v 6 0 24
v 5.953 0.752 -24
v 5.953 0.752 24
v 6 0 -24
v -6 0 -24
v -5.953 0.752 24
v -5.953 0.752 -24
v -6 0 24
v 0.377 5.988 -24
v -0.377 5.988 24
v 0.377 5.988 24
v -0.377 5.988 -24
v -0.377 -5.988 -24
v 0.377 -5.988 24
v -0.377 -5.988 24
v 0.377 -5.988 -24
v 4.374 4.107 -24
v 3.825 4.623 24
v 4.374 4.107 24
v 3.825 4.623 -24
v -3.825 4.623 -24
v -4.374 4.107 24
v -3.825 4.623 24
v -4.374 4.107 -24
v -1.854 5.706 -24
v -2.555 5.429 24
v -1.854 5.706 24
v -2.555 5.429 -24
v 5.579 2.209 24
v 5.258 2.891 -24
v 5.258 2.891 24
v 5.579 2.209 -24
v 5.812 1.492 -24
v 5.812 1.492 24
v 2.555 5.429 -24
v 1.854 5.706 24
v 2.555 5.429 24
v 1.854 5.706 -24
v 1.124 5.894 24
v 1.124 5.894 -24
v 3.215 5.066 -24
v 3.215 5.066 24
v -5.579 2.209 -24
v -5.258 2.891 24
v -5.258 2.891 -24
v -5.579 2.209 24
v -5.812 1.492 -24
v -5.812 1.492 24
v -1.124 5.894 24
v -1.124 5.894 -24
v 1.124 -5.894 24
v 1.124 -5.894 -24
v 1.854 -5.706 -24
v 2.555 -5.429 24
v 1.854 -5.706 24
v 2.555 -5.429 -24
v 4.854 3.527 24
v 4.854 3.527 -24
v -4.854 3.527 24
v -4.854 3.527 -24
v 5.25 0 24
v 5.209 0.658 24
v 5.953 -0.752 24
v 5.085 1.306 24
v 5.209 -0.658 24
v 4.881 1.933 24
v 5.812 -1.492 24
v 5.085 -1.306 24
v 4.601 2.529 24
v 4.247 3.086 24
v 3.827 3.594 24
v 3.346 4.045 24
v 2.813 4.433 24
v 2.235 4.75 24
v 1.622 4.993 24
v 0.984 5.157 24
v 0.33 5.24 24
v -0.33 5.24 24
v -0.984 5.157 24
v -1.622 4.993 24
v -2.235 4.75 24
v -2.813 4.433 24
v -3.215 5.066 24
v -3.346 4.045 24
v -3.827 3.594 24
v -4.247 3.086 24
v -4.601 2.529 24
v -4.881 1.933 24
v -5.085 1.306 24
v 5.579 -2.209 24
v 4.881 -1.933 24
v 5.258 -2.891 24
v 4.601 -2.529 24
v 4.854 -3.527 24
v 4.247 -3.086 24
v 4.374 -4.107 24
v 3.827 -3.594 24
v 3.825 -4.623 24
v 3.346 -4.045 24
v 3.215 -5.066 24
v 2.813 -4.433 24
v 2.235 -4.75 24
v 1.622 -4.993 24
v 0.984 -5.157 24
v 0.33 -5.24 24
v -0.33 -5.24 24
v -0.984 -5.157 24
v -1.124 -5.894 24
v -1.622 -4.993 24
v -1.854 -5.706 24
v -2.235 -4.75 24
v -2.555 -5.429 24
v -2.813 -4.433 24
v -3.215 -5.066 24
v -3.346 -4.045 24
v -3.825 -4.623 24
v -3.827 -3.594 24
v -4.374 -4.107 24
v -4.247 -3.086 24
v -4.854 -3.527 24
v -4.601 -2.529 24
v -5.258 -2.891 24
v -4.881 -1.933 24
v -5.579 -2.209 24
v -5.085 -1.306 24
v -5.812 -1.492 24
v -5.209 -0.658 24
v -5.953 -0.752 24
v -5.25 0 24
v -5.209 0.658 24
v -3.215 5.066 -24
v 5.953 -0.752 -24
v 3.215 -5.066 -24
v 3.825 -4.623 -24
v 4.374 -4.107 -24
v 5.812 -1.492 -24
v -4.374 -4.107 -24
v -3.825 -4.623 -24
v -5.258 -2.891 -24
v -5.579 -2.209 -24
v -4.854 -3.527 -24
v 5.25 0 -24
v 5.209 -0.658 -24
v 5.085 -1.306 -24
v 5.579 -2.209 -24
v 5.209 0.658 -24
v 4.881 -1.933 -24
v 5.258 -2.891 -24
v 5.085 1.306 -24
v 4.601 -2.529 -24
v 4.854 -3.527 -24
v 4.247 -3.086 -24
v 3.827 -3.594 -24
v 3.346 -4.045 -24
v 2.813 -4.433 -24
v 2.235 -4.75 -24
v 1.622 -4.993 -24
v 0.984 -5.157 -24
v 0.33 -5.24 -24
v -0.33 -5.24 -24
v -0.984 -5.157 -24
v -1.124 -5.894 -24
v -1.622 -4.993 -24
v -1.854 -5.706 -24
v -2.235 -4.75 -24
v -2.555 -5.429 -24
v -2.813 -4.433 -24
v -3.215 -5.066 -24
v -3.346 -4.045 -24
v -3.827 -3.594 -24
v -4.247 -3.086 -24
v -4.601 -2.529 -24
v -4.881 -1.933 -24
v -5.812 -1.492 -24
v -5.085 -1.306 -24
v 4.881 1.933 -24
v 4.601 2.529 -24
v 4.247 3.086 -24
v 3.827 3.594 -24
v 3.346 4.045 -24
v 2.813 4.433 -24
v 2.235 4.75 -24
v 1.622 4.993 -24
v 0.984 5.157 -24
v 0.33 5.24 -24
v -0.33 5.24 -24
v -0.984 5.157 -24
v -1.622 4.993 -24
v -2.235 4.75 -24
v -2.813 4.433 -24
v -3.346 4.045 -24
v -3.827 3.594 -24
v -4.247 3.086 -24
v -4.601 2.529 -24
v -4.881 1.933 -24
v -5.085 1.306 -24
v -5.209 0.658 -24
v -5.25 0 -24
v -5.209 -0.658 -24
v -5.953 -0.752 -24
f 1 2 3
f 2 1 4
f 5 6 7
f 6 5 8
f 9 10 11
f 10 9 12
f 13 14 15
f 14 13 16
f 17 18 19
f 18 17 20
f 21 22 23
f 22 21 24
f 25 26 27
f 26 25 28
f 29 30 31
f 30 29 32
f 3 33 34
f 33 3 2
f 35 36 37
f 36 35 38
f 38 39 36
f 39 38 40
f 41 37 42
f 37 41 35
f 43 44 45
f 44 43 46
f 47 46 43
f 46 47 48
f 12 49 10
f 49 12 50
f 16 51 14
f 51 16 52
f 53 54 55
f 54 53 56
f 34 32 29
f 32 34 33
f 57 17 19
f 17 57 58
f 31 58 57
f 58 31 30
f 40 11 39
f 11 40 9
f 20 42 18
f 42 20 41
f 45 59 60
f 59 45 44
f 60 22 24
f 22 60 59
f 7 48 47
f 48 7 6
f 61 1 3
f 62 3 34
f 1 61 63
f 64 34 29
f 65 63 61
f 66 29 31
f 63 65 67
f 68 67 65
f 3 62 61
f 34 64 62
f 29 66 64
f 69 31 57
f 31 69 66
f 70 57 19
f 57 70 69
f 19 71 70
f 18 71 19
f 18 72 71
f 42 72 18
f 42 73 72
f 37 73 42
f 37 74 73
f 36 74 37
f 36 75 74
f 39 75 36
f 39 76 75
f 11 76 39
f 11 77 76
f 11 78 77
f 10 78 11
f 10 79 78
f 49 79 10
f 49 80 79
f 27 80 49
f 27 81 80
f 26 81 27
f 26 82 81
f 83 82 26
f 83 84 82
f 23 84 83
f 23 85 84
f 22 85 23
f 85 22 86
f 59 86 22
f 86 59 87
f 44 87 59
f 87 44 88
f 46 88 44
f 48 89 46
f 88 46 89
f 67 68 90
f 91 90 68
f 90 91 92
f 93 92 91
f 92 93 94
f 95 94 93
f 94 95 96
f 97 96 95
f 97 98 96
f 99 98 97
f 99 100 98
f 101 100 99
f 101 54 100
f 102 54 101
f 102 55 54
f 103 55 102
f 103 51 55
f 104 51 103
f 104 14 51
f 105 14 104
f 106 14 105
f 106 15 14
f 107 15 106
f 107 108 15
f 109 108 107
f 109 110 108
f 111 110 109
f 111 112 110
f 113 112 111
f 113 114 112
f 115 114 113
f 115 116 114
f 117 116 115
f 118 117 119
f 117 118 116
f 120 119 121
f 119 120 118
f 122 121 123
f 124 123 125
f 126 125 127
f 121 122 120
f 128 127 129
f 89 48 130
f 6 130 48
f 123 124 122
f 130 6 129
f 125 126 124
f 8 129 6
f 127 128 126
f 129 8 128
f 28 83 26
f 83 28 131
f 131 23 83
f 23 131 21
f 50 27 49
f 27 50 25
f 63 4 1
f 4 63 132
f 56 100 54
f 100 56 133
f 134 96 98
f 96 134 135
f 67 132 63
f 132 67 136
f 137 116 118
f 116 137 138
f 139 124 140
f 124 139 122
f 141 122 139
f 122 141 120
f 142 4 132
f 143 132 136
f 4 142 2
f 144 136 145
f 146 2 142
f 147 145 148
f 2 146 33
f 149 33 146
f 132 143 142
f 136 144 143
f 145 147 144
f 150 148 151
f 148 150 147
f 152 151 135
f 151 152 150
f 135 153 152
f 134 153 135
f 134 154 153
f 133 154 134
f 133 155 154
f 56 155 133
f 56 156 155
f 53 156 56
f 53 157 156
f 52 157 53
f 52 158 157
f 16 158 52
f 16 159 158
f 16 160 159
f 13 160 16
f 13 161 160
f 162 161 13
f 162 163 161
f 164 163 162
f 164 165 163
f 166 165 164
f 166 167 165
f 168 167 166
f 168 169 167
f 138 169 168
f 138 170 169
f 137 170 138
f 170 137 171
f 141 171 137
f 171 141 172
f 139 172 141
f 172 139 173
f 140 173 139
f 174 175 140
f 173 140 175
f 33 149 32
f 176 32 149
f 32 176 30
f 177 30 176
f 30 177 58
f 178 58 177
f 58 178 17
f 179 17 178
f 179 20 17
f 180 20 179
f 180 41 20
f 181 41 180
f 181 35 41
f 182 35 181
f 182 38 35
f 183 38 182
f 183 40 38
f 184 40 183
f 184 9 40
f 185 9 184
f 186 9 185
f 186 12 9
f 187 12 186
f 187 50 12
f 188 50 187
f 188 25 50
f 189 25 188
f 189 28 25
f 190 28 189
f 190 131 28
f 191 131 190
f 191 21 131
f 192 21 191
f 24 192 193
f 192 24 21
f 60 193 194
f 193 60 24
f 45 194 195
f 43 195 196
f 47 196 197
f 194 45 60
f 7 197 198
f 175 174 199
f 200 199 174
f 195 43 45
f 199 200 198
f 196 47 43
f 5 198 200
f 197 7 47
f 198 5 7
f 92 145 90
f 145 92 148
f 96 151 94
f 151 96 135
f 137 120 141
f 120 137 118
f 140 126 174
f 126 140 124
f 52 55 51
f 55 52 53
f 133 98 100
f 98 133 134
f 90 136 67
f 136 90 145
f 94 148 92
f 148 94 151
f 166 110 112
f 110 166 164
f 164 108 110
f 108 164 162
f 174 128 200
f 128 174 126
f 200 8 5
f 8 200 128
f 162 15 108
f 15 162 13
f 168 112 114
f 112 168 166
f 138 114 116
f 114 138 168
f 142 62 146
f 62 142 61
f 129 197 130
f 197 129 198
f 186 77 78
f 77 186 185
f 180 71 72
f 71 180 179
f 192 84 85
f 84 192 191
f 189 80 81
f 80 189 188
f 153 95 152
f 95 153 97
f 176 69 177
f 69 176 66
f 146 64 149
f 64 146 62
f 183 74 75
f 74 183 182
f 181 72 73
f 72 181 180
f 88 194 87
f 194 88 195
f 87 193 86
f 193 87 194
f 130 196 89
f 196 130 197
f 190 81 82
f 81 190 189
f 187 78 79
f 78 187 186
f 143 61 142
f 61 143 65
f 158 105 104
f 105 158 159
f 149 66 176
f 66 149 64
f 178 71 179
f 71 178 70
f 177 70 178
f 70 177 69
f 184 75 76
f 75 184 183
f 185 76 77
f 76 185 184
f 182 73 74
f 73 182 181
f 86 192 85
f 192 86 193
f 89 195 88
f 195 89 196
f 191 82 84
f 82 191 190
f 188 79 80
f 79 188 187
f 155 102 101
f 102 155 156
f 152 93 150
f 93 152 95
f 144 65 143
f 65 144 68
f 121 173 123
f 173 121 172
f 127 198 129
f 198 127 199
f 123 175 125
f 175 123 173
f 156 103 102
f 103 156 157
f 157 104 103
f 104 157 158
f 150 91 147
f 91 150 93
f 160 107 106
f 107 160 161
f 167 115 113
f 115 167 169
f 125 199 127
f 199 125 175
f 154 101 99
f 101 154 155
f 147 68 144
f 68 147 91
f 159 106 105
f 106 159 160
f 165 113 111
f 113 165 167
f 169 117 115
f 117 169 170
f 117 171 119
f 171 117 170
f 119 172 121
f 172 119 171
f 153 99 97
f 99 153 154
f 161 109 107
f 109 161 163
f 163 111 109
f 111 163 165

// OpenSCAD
$fn = 50;


difference() {
	union() {
		translate(v = [0, 0, -24.0000000000]) {
			cylinder(h = 48, r = 6.0000000000);
		}
	}
	union() {
		translate(v = [0, 0, -100.0000000000]) {
			cylinder(h = 200, r = 5.2500000000);
		}
	}
}
